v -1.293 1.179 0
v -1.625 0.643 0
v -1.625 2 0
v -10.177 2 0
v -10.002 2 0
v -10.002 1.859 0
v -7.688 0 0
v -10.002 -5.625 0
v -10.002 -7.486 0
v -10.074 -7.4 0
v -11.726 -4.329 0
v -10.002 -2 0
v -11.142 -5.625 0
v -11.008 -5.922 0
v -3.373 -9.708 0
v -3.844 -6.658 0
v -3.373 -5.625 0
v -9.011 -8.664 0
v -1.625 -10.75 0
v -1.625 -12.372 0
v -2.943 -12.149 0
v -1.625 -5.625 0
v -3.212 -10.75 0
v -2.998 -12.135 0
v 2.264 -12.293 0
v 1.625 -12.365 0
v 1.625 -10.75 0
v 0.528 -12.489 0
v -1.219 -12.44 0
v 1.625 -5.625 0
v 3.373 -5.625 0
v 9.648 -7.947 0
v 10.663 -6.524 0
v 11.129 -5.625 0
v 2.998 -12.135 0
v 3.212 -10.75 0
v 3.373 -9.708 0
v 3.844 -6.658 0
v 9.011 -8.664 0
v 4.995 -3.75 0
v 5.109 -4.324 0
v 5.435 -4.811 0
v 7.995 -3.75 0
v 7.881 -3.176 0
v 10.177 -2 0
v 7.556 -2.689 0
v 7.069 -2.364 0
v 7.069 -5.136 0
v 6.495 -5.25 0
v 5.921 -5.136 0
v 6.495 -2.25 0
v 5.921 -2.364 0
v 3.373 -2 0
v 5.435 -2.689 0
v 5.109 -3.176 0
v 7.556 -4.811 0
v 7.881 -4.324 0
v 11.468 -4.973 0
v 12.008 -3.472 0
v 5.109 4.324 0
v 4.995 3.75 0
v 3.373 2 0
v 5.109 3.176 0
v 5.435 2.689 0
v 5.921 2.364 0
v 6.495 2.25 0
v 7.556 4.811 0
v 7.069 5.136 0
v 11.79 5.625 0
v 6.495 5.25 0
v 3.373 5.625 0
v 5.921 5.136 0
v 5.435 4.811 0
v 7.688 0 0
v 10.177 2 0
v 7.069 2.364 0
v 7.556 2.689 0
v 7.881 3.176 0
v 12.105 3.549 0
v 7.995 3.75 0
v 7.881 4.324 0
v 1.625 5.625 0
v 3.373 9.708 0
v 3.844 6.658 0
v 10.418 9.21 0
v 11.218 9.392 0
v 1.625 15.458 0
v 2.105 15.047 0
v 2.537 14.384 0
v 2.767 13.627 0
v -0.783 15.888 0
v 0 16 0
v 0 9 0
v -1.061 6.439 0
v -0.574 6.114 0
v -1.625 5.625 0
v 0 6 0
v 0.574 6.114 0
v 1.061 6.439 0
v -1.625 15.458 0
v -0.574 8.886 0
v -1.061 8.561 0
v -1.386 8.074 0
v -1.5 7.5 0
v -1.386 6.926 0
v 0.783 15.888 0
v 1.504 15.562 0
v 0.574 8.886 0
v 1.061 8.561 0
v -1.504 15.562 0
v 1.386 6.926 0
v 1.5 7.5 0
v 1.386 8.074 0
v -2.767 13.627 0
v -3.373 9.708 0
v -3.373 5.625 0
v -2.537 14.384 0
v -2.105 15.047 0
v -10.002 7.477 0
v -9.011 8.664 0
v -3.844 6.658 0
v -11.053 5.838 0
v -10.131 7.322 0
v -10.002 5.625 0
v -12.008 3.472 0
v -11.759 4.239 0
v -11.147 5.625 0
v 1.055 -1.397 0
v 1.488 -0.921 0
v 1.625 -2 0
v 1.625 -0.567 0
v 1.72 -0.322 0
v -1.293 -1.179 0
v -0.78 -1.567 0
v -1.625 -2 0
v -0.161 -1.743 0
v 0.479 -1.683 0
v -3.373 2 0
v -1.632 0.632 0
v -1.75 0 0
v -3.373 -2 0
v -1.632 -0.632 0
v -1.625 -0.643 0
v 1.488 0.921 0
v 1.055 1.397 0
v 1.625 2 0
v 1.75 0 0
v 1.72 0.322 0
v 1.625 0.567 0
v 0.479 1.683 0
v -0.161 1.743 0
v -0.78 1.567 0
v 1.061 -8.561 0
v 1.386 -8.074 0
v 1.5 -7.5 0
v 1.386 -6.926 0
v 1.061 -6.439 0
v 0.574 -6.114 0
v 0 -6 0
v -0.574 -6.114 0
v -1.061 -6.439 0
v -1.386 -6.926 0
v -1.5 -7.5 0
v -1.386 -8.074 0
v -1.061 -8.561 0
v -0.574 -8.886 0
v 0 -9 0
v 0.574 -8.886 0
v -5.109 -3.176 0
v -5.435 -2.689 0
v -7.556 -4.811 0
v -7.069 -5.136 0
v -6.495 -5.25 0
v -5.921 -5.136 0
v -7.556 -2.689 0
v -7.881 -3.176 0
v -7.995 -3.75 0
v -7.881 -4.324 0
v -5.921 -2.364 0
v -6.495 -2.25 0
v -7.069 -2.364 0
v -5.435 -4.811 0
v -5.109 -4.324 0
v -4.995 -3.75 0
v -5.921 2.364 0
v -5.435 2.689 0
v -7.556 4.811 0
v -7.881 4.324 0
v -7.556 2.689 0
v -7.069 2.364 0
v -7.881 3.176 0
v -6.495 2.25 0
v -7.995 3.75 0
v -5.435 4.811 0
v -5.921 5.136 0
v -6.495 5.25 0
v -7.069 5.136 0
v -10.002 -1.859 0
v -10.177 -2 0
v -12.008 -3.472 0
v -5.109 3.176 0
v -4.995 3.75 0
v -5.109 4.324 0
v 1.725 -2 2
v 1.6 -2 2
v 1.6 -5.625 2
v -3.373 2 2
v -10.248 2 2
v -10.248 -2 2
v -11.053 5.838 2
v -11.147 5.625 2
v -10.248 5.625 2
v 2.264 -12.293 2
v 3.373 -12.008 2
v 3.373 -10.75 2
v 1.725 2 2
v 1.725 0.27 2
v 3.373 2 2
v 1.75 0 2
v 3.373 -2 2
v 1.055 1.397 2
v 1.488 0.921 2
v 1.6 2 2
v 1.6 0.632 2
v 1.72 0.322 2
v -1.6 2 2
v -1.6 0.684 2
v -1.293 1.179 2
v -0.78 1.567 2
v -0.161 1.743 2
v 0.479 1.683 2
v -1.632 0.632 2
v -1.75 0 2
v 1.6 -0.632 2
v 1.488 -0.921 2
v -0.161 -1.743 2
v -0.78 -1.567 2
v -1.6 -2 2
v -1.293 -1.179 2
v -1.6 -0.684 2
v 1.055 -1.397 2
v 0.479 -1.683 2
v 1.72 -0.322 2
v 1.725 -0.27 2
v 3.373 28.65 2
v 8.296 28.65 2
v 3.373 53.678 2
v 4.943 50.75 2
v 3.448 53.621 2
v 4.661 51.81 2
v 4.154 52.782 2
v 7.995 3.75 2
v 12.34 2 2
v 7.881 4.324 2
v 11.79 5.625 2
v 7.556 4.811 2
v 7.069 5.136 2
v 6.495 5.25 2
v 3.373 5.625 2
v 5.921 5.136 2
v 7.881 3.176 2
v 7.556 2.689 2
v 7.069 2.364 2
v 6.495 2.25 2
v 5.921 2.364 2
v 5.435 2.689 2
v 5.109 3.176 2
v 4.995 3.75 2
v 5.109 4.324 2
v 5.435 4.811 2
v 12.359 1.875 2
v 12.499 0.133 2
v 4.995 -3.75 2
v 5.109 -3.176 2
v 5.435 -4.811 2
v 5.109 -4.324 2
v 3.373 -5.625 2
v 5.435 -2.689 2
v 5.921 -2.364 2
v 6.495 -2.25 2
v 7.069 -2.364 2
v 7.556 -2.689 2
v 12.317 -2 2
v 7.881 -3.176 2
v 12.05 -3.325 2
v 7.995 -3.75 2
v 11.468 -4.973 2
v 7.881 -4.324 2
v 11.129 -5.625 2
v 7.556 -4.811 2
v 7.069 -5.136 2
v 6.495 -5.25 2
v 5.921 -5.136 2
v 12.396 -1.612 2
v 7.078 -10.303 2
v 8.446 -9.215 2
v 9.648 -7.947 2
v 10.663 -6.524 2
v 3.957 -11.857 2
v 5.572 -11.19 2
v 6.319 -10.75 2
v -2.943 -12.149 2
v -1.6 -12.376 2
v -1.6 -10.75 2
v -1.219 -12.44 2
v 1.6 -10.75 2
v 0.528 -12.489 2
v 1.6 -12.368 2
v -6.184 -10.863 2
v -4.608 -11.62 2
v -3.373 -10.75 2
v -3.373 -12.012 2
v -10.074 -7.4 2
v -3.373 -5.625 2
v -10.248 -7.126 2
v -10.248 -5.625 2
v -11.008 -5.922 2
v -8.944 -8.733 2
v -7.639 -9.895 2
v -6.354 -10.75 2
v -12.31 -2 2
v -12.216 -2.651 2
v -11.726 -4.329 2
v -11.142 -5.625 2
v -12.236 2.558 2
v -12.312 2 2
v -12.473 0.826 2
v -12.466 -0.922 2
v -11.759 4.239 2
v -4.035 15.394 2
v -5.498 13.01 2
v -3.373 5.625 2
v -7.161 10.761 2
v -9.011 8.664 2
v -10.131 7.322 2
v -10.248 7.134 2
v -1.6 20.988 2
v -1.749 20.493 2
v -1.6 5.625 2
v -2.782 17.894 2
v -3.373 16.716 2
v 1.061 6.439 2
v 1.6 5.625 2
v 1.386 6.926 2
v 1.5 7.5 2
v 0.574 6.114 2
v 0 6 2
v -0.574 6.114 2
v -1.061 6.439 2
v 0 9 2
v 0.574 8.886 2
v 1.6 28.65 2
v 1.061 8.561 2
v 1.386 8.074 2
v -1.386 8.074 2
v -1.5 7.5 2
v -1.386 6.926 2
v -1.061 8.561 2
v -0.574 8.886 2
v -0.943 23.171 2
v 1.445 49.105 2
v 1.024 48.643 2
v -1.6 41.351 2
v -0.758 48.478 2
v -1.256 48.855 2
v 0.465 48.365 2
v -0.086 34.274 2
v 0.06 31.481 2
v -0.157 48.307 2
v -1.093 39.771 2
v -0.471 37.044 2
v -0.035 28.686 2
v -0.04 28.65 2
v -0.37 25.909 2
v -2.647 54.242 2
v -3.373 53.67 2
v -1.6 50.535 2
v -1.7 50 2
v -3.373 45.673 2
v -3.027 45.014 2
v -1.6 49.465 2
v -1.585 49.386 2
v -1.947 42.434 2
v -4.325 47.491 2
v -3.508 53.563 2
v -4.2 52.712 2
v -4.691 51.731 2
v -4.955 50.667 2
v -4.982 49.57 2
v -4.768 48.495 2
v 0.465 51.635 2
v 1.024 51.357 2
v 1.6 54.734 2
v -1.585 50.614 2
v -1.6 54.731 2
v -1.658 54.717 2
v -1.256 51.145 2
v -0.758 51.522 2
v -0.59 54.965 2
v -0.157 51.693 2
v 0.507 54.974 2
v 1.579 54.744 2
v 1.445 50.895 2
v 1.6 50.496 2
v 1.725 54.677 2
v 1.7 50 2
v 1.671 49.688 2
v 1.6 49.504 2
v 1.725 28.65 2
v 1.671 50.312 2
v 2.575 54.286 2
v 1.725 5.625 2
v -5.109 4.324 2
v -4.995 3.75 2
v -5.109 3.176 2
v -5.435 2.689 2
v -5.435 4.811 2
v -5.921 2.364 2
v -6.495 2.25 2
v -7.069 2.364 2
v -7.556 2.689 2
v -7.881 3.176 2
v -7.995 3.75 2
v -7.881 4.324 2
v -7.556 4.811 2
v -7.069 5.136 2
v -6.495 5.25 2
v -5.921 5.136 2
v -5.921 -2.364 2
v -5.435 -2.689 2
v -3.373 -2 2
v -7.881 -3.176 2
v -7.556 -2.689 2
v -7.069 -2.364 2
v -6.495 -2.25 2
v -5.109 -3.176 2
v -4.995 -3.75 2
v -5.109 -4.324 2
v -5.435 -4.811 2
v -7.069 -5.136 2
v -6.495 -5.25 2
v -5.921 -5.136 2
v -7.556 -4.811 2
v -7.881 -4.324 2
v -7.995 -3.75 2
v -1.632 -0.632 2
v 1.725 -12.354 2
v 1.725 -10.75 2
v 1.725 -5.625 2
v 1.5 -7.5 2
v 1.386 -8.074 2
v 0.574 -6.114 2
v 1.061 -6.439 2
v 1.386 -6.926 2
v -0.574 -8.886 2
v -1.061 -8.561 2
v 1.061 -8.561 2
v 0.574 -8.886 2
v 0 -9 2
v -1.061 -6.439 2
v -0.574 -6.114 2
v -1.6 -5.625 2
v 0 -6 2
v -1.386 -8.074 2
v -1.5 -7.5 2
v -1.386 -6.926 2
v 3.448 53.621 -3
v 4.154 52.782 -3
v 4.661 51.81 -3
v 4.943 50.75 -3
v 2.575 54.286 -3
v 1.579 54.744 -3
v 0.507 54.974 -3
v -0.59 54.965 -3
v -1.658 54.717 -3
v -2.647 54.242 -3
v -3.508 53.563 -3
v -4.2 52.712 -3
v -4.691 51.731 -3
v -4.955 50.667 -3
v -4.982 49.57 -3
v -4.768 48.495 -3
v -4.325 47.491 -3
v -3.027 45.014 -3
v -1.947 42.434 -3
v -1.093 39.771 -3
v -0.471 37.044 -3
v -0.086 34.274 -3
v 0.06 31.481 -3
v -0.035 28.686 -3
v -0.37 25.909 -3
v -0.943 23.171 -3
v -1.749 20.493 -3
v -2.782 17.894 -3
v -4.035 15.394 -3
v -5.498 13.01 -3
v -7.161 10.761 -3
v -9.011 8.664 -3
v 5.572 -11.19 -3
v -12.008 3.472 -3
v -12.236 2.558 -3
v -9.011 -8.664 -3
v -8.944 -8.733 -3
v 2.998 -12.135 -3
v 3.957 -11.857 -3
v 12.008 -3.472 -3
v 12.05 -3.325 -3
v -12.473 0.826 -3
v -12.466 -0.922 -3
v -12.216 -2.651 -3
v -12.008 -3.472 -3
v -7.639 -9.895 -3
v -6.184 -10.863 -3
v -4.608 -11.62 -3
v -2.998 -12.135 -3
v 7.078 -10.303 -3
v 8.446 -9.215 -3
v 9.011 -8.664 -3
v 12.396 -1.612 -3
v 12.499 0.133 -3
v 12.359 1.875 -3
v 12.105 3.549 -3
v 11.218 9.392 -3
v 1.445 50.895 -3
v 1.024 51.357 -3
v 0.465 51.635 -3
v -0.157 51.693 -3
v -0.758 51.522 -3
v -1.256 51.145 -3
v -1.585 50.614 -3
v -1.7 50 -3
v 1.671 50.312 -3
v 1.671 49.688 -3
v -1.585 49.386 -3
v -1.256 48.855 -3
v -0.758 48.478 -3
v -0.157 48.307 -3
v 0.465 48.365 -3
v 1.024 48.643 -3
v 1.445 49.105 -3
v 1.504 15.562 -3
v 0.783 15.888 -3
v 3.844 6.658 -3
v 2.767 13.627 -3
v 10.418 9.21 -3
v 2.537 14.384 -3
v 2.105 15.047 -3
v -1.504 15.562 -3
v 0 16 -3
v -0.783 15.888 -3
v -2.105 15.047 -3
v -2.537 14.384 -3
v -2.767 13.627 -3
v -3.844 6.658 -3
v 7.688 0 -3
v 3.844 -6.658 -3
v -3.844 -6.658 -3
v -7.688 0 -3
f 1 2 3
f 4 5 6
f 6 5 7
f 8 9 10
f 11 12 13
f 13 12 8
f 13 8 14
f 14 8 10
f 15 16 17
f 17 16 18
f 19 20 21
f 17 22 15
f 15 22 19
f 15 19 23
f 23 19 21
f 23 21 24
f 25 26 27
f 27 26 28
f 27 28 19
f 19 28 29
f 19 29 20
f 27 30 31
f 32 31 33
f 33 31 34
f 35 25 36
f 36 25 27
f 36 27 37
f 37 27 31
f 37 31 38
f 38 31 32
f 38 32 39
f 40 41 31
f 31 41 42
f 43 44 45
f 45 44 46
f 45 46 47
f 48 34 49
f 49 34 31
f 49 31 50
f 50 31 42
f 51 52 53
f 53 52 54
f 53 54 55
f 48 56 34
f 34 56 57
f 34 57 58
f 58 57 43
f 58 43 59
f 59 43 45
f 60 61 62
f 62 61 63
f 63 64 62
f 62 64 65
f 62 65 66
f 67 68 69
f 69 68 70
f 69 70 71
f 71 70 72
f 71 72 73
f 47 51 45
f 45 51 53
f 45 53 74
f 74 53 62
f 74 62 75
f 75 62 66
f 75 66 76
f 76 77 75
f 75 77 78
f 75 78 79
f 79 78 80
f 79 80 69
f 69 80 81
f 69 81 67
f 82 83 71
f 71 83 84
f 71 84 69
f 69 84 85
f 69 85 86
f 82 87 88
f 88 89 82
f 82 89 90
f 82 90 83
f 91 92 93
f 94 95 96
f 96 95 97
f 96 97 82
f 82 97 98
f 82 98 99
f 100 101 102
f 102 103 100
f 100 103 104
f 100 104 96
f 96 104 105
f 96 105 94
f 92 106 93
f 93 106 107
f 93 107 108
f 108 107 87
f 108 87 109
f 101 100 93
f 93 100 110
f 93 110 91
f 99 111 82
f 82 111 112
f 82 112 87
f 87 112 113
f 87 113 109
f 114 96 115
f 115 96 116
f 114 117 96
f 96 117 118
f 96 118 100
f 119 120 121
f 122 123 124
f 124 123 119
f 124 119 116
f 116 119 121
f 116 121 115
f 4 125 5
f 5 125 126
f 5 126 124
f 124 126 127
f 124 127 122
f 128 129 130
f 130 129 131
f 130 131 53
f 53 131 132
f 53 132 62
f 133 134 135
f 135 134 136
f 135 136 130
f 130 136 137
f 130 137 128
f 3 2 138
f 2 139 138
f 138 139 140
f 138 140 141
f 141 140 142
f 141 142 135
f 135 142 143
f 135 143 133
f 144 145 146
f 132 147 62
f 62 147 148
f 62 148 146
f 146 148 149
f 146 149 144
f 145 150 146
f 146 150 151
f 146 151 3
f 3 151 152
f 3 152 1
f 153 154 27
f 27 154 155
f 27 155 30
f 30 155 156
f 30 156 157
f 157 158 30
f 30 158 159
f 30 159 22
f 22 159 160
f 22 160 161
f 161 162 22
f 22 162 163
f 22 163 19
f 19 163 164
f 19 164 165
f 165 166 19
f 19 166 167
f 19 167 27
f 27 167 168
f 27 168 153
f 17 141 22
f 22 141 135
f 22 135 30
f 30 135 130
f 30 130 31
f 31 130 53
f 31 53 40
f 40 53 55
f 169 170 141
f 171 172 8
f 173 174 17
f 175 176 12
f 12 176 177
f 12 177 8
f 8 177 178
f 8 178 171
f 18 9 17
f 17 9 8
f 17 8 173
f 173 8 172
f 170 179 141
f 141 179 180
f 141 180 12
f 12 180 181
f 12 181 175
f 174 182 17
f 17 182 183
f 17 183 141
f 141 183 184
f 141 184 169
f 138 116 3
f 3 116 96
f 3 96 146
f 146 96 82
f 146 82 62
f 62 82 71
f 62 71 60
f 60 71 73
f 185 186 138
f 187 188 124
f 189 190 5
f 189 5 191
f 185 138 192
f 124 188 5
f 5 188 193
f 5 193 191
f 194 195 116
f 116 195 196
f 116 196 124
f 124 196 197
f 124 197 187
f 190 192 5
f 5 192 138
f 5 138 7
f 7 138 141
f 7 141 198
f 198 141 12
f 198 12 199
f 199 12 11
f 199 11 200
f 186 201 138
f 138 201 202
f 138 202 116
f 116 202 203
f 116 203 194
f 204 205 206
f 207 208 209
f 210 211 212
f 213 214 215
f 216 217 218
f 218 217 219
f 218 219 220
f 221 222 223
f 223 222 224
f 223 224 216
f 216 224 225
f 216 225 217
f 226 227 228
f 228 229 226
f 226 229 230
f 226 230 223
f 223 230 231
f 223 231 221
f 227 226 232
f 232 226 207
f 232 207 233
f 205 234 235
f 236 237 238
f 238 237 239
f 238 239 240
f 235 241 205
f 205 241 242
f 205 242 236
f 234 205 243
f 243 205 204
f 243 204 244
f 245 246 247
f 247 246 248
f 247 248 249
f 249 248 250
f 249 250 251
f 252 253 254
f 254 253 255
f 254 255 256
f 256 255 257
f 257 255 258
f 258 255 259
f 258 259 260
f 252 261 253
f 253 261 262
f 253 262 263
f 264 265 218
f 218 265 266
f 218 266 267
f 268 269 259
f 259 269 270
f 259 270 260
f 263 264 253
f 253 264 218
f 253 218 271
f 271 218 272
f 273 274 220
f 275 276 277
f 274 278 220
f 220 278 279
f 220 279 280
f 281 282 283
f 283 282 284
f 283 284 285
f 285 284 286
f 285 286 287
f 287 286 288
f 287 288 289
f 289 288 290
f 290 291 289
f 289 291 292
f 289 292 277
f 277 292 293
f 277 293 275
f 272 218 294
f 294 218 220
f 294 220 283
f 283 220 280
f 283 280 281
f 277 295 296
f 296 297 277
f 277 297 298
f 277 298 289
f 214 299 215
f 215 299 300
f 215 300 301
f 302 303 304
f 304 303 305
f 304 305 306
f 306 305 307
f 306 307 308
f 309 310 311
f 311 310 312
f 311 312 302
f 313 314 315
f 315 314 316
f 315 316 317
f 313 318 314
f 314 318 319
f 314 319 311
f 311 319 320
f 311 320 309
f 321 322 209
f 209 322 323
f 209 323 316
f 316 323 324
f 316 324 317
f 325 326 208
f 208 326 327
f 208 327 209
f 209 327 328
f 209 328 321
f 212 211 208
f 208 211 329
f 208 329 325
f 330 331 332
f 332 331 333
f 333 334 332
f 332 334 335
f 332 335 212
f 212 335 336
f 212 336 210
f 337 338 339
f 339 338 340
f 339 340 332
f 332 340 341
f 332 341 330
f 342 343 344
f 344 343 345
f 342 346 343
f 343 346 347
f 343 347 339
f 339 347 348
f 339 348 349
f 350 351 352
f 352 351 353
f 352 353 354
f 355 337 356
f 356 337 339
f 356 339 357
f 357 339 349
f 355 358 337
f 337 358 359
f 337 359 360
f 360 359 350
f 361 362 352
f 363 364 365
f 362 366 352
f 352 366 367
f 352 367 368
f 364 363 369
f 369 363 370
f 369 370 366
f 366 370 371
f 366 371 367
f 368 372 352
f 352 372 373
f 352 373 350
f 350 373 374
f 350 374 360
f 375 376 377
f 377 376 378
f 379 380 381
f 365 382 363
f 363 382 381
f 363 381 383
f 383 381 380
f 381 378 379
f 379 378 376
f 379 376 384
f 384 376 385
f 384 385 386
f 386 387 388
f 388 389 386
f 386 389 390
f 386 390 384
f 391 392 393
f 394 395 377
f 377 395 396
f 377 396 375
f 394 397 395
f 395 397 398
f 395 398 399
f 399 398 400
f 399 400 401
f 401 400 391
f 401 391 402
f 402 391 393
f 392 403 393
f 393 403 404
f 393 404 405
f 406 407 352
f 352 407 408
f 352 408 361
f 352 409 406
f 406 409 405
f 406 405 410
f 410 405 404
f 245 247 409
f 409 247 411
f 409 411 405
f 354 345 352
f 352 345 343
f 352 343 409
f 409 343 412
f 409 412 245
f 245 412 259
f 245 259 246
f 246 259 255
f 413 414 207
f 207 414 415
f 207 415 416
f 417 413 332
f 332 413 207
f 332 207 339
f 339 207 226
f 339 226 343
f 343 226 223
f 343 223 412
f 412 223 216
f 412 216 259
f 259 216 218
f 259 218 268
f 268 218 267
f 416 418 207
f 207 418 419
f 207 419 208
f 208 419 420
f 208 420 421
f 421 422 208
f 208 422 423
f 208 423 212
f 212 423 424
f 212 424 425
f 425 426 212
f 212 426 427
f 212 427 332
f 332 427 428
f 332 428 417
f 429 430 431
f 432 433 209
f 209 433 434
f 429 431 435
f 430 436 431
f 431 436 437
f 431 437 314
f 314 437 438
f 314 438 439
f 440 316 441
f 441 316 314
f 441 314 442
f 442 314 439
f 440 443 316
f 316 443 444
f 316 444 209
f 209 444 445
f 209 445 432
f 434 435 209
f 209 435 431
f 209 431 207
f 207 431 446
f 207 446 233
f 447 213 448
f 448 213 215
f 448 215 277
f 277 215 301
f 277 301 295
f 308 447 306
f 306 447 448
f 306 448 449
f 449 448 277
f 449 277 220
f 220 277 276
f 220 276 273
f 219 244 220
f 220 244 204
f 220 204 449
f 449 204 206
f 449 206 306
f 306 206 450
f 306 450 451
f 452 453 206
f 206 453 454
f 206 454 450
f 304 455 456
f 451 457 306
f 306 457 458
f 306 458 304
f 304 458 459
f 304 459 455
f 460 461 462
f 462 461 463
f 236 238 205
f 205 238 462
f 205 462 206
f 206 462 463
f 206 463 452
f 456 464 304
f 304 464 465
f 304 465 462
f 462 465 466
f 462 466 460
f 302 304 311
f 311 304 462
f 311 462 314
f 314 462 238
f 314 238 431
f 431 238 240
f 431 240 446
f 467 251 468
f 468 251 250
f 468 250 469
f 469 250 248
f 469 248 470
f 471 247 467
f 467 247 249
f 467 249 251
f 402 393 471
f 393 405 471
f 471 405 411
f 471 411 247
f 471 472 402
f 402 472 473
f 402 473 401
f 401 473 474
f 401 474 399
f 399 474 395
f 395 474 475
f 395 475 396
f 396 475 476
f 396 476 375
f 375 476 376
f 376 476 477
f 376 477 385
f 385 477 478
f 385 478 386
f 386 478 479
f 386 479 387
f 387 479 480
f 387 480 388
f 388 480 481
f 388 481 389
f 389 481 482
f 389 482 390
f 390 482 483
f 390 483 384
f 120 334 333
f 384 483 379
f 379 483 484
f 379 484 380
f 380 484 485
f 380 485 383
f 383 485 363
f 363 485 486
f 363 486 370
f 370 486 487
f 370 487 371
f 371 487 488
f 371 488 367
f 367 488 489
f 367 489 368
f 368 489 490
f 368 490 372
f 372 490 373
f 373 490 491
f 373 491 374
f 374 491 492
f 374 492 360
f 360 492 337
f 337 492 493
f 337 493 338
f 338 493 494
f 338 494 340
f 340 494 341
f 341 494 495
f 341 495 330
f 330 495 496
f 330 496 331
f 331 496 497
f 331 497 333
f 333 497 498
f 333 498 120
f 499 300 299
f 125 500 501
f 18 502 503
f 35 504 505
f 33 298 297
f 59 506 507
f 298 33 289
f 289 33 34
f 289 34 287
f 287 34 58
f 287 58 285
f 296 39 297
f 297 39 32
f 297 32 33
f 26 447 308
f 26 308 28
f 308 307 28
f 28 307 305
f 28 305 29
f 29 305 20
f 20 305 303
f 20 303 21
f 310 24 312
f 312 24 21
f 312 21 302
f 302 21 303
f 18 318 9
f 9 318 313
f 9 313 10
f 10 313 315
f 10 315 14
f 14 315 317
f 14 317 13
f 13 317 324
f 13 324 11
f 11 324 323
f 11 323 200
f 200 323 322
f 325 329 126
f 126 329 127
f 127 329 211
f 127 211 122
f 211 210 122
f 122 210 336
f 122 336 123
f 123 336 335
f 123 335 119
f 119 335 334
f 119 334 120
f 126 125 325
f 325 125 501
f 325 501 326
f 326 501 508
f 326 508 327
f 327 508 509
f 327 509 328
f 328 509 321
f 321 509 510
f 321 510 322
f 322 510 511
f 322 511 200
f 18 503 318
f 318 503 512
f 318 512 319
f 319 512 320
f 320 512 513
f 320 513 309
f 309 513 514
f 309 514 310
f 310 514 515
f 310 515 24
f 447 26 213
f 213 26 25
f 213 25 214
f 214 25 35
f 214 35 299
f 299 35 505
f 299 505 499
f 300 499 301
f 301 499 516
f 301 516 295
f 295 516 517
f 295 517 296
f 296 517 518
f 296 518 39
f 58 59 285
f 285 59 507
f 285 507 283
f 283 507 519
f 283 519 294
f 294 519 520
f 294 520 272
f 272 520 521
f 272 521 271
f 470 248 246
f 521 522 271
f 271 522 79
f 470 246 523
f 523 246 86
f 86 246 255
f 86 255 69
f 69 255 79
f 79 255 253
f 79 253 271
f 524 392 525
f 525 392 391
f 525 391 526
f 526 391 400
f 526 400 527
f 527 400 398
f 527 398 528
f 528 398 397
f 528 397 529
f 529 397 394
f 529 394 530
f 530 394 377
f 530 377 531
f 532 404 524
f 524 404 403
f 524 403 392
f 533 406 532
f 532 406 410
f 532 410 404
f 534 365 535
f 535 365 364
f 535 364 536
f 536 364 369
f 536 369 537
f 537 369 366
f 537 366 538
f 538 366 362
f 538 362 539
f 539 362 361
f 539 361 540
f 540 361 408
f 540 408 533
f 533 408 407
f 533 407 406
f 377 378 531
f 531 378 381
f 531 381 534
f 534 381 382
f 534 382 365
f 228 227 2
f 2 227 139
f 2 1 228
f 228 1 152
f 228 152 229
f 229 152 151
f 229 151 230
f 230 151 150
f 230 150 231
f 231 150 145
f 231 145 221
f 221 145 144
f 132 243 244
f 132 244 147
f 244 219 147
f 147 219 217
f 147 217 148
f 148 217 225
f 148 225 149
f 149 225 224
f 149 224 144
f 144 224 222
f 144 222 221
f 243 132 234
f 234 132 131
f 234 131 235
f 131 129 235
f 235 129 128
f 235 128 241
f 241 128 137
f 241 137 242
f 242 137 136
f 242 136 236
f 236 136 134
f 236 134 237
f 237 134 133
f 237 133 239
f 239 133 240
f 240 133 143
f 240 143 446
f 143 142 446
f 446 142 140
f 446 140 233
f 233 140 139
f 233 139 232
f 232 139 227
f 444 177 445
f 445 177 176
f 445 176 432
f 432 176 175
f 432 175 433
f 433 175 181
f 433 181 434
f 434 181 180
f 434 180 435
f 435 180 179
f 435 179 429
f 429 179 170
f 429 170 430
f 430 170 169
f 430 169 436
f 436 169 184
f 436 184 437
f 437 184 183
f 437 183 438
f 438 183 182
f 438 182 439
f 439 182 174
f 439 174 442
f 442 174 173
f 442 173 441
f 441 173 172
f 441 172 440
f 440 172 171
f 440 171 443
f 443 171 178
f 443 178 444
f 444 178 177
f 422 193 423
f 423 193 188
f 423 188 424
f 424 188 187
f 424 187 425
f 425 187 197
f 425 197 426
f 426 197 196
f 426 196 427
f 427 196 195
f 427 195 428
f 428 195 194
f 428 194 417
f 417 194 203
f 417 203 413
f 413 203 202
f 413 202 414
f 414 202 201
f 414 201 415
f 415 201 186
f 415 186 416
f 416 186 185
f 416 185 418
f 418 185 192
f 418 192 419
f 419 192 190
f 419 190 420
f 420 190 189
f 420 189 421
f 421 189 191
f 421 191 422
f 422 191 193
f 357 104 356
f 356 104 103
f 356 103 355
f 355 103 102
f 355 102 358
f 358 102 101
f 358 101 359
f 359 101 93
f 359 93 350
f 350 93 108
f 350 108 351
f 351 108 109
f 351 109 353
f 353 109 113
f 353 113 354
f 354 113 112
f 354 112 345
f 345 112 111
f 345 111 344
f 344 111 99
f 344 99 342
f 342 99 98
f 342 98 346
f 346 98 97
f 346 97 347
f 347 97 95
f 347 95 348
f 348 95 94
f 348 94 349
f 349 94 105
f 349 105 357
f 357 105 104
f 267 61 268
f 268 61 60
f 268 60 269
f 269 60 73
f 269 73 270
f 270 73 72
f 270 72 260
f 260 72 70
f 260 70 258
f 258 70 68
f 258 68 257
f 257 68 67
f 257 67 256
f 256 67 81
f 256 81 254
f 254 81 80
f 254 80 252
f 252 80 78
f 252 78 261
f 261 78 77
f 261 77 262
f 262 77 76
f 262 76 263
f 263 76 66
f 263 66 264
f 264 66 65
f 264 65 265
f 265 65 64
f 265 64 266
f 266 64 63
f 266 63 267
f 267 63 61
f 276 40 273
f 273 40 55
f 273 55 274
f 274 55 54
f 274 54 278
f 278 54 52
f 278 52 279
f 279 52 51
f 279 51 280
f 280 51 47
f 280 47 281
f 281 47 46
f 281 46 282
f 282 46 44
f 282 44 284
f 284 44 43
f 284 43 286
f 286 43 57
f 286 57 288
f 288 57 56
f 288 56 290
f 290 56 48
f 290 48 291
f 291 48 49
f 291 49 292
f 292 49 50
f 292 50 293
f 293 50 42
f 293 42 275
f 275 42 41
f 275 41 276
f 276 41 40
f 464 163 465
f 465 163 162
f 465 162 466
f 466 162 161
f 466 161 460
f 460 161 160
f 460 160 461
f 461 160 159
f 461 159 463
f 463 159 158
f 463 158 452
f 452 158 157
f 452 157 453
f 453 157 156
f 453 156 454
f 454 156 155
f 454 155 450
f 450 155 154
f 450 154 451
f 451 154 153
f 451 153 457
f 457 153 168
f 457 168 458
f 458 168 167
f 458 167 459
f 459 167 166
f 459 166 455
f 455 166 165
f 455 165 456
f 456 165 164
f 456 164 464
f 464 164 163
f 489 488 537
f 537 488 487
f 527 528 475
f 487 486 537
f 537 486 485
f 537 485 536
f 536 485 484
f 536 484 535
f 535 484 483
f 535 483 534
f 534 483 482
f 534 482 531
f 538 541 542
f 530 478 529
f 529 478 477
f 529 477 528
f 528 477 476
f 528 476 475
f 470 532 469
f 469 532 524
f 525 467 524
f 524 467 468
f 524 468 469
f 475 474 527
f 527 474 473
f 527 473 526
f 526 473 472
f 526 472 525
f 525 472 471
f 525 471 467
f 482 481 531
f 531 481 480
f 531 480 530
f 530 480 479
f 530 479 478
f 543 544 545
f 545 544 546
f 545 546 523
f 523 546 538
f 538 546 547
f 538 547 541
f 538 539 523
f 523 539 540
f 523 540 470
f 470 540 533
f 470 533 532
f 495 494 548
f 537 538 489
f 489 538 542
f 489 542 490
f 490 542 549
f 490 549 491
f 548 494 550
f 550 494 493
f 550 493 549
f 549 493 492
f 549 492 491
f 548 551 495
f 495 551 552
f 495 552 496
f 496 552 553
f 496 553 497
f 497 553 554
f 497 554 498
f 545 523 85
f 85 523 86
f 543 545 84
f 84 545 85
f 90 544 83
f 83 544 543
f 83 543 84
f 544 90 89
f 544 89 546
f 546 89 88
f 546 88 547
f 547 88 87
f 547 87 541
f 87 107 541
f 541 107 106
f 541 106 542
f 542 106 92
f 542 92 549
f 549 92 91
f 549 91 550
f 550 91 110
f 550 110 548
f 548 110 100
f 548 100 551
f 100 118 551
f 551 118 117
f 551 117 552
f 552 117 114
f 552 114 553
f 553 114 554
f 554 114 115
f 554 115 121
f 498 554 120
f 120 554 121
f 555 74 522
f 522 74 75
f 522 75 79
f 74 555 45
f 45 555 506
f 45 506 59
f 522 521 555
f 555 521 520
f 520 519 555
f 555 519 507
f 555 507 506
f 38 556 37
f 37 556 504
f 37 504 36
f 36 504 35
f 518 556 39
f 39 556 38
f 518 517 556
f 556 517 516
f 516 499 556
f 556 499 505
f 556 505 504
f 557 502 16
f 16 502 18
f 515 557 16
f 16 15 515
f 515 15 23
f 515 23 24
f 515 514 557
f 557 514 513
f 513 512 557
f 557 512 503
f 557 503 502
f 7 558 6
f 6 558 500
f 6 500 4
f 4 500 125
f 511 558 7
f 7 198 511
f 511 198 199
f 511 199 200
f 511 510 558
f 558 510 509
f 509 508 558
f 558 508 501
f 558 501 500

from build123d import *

# Parameters (mm, degrees)
SKETCH_1_R      = 1.7
SKETCH_1_R_2    = 1.75
SKETCH_1_R_3    = 1.5
EXTRUDE_1_DEPTH = 2
SKETCH_2_R      = 1.7
EXTRUDE_2_DEPTH = 3


with BuildPart() as part:
    # 草图1 → 凸台-拉伸1 (new body)
    with BuildSketch(Plane.XY):
        with BuildLine():
            Line((4.943429983, 50.75), (12.358574958, 1.875))
            ThreePointArc((12.358574958, 1.875), (-3.784680756, -11.913277953), (-9.010584258, 8.663681166))
            ThreePointArc((-9.010584258, 8.663681166), (-0.173058011, 27.293788413), (-4.325142467, 47.491386311))
            ThreePointArc((-4.325142467, 47.491386311), (-1.658375909, 54.716968236), (4.943429983, 50.75))
        make_face()
        with Locations((0, 50)):
            Circle(SKETCH_1_R, mode=Mode.SUBTRACT)
        Circle(SKETCH_1_R_2, mode=Mode.SUBTRACT)
        with Locations((-6.495190528, -3.75)):
            Circle(SKETCH_1_R_3, mode=Mode.SUBTRACT)
        with Locations((-6.495190528, 3.75)):
            Circle(SKETCH_1_R_3, mode=Mode.SUBTRACT)
        with Locations((0, 7.5)):
            Circle(SKETCH_1_R_3, mode=Mode.SUBTRACT)
        with Locations((6.495190528, 3.75)):
            Circle(SKETCH_1_R_3, mode=Mode.SUBTRACT)
        with Locations((6.495190528, -3.75)):
            Circle(SKETCH_1_R_3, mode=Mode.SUBTRACT)
        with Locations((0, -7.5)):
            Circle(SKETCH_1_R_3, mode=Mode.SUBTRACT)
    extrude(amount=EXTRUDE_1_DEPTH)

    # 草图2 → 凸台-拉伸2 (add)
    with BuildSketch(Plane(origin=(0, 0, 0), x_dir=(-1, 0, 0), z_dir=(0, 0, -1))):
        with BuildLine():
            Line((-12.104606684, 3.548965842), (-12.358574958, 1.875))
            ThreePointArc((-12.358574958, 1.875), (-12.473254326, -0.817267717), (-12.008260108, -3.471554287))
            Line((-12.008260108, -3.471554287), (-7.687556684, 0))
            Line((-7.687556684, 0), (-12.104606684, 3.548965842))
        make_face()
        with BuildLine():
            Line((-4.943429983, 50.75), (-11.218143605, 9.391856725))
            ThreePointArc((-11.218143605, 9.391856725), (-10.811437733, 9.330472298), (-10.418112816, 9.210167583))
            Line((-10.418112816, 9.210167583), (-3.843778342, 6.657619381))
            Line((-3.843778342, 6.657619381), (-2.767182691, 13.62743415))
            ThreePointArc((-2.767182691, 13.62743415), (0, 16), (2.767182691, 13.62743415))
            Line((2.767182691, 13.62743415), (3.843778342, 6.657619381))
            Line((3.843778342, 6.657619381), (9.010584258, 8.663681166))
            ThreePointArc((9.010584258, 8.663681166), (0.173058011, 27.293788413), (4.325142467, 47.491386311))
            ThreePointArc((4.325142467, 47.491386311), (1.658375909, 54.716968236), (-4.943429983, 50.75))
        make_face()
        with Locations((0, 50)):
            Circle(SKETCH_2_R, mode=Mode.SUBTRACT)
        with BuildLine():
            Line((7.687556684, 0), (12.008260108, 3.471554287))
            ThreePointArc((12.008260108, 3.471554287), (12.5, 0), (12.008260108, -3.471554287))
            Line((12.008260108, -3.471554287), (7.687556684, 0))
        make_face()
        with BuildLine():
            Line((3.843778342, -6.657619381), (9.010584258, -8.663681166))
            ThreePointArc((9.010584258, -8.663681166), (6.25, -10.825317547), (2.997675851, -12.135235453))
            Line((2.997675851, -12.135235453), (3.843778342, -6.657619381))
        make_face()
        with BuildLine():
            Line((-3.843778342, -6.657619381), (-2.997675851, -12.135235453))
            ThreePointArc((-2.997675851, -12.135235453), (-6.25, -10.825317547), (-9.010584258, -8.663681166))
            Line((-9.010584258, -8.663681166), (-3.843778342, -6.657619381))
        make_face()
    extrude(amount=EXTRUDE_2_DEPTH)


solid = part.part
